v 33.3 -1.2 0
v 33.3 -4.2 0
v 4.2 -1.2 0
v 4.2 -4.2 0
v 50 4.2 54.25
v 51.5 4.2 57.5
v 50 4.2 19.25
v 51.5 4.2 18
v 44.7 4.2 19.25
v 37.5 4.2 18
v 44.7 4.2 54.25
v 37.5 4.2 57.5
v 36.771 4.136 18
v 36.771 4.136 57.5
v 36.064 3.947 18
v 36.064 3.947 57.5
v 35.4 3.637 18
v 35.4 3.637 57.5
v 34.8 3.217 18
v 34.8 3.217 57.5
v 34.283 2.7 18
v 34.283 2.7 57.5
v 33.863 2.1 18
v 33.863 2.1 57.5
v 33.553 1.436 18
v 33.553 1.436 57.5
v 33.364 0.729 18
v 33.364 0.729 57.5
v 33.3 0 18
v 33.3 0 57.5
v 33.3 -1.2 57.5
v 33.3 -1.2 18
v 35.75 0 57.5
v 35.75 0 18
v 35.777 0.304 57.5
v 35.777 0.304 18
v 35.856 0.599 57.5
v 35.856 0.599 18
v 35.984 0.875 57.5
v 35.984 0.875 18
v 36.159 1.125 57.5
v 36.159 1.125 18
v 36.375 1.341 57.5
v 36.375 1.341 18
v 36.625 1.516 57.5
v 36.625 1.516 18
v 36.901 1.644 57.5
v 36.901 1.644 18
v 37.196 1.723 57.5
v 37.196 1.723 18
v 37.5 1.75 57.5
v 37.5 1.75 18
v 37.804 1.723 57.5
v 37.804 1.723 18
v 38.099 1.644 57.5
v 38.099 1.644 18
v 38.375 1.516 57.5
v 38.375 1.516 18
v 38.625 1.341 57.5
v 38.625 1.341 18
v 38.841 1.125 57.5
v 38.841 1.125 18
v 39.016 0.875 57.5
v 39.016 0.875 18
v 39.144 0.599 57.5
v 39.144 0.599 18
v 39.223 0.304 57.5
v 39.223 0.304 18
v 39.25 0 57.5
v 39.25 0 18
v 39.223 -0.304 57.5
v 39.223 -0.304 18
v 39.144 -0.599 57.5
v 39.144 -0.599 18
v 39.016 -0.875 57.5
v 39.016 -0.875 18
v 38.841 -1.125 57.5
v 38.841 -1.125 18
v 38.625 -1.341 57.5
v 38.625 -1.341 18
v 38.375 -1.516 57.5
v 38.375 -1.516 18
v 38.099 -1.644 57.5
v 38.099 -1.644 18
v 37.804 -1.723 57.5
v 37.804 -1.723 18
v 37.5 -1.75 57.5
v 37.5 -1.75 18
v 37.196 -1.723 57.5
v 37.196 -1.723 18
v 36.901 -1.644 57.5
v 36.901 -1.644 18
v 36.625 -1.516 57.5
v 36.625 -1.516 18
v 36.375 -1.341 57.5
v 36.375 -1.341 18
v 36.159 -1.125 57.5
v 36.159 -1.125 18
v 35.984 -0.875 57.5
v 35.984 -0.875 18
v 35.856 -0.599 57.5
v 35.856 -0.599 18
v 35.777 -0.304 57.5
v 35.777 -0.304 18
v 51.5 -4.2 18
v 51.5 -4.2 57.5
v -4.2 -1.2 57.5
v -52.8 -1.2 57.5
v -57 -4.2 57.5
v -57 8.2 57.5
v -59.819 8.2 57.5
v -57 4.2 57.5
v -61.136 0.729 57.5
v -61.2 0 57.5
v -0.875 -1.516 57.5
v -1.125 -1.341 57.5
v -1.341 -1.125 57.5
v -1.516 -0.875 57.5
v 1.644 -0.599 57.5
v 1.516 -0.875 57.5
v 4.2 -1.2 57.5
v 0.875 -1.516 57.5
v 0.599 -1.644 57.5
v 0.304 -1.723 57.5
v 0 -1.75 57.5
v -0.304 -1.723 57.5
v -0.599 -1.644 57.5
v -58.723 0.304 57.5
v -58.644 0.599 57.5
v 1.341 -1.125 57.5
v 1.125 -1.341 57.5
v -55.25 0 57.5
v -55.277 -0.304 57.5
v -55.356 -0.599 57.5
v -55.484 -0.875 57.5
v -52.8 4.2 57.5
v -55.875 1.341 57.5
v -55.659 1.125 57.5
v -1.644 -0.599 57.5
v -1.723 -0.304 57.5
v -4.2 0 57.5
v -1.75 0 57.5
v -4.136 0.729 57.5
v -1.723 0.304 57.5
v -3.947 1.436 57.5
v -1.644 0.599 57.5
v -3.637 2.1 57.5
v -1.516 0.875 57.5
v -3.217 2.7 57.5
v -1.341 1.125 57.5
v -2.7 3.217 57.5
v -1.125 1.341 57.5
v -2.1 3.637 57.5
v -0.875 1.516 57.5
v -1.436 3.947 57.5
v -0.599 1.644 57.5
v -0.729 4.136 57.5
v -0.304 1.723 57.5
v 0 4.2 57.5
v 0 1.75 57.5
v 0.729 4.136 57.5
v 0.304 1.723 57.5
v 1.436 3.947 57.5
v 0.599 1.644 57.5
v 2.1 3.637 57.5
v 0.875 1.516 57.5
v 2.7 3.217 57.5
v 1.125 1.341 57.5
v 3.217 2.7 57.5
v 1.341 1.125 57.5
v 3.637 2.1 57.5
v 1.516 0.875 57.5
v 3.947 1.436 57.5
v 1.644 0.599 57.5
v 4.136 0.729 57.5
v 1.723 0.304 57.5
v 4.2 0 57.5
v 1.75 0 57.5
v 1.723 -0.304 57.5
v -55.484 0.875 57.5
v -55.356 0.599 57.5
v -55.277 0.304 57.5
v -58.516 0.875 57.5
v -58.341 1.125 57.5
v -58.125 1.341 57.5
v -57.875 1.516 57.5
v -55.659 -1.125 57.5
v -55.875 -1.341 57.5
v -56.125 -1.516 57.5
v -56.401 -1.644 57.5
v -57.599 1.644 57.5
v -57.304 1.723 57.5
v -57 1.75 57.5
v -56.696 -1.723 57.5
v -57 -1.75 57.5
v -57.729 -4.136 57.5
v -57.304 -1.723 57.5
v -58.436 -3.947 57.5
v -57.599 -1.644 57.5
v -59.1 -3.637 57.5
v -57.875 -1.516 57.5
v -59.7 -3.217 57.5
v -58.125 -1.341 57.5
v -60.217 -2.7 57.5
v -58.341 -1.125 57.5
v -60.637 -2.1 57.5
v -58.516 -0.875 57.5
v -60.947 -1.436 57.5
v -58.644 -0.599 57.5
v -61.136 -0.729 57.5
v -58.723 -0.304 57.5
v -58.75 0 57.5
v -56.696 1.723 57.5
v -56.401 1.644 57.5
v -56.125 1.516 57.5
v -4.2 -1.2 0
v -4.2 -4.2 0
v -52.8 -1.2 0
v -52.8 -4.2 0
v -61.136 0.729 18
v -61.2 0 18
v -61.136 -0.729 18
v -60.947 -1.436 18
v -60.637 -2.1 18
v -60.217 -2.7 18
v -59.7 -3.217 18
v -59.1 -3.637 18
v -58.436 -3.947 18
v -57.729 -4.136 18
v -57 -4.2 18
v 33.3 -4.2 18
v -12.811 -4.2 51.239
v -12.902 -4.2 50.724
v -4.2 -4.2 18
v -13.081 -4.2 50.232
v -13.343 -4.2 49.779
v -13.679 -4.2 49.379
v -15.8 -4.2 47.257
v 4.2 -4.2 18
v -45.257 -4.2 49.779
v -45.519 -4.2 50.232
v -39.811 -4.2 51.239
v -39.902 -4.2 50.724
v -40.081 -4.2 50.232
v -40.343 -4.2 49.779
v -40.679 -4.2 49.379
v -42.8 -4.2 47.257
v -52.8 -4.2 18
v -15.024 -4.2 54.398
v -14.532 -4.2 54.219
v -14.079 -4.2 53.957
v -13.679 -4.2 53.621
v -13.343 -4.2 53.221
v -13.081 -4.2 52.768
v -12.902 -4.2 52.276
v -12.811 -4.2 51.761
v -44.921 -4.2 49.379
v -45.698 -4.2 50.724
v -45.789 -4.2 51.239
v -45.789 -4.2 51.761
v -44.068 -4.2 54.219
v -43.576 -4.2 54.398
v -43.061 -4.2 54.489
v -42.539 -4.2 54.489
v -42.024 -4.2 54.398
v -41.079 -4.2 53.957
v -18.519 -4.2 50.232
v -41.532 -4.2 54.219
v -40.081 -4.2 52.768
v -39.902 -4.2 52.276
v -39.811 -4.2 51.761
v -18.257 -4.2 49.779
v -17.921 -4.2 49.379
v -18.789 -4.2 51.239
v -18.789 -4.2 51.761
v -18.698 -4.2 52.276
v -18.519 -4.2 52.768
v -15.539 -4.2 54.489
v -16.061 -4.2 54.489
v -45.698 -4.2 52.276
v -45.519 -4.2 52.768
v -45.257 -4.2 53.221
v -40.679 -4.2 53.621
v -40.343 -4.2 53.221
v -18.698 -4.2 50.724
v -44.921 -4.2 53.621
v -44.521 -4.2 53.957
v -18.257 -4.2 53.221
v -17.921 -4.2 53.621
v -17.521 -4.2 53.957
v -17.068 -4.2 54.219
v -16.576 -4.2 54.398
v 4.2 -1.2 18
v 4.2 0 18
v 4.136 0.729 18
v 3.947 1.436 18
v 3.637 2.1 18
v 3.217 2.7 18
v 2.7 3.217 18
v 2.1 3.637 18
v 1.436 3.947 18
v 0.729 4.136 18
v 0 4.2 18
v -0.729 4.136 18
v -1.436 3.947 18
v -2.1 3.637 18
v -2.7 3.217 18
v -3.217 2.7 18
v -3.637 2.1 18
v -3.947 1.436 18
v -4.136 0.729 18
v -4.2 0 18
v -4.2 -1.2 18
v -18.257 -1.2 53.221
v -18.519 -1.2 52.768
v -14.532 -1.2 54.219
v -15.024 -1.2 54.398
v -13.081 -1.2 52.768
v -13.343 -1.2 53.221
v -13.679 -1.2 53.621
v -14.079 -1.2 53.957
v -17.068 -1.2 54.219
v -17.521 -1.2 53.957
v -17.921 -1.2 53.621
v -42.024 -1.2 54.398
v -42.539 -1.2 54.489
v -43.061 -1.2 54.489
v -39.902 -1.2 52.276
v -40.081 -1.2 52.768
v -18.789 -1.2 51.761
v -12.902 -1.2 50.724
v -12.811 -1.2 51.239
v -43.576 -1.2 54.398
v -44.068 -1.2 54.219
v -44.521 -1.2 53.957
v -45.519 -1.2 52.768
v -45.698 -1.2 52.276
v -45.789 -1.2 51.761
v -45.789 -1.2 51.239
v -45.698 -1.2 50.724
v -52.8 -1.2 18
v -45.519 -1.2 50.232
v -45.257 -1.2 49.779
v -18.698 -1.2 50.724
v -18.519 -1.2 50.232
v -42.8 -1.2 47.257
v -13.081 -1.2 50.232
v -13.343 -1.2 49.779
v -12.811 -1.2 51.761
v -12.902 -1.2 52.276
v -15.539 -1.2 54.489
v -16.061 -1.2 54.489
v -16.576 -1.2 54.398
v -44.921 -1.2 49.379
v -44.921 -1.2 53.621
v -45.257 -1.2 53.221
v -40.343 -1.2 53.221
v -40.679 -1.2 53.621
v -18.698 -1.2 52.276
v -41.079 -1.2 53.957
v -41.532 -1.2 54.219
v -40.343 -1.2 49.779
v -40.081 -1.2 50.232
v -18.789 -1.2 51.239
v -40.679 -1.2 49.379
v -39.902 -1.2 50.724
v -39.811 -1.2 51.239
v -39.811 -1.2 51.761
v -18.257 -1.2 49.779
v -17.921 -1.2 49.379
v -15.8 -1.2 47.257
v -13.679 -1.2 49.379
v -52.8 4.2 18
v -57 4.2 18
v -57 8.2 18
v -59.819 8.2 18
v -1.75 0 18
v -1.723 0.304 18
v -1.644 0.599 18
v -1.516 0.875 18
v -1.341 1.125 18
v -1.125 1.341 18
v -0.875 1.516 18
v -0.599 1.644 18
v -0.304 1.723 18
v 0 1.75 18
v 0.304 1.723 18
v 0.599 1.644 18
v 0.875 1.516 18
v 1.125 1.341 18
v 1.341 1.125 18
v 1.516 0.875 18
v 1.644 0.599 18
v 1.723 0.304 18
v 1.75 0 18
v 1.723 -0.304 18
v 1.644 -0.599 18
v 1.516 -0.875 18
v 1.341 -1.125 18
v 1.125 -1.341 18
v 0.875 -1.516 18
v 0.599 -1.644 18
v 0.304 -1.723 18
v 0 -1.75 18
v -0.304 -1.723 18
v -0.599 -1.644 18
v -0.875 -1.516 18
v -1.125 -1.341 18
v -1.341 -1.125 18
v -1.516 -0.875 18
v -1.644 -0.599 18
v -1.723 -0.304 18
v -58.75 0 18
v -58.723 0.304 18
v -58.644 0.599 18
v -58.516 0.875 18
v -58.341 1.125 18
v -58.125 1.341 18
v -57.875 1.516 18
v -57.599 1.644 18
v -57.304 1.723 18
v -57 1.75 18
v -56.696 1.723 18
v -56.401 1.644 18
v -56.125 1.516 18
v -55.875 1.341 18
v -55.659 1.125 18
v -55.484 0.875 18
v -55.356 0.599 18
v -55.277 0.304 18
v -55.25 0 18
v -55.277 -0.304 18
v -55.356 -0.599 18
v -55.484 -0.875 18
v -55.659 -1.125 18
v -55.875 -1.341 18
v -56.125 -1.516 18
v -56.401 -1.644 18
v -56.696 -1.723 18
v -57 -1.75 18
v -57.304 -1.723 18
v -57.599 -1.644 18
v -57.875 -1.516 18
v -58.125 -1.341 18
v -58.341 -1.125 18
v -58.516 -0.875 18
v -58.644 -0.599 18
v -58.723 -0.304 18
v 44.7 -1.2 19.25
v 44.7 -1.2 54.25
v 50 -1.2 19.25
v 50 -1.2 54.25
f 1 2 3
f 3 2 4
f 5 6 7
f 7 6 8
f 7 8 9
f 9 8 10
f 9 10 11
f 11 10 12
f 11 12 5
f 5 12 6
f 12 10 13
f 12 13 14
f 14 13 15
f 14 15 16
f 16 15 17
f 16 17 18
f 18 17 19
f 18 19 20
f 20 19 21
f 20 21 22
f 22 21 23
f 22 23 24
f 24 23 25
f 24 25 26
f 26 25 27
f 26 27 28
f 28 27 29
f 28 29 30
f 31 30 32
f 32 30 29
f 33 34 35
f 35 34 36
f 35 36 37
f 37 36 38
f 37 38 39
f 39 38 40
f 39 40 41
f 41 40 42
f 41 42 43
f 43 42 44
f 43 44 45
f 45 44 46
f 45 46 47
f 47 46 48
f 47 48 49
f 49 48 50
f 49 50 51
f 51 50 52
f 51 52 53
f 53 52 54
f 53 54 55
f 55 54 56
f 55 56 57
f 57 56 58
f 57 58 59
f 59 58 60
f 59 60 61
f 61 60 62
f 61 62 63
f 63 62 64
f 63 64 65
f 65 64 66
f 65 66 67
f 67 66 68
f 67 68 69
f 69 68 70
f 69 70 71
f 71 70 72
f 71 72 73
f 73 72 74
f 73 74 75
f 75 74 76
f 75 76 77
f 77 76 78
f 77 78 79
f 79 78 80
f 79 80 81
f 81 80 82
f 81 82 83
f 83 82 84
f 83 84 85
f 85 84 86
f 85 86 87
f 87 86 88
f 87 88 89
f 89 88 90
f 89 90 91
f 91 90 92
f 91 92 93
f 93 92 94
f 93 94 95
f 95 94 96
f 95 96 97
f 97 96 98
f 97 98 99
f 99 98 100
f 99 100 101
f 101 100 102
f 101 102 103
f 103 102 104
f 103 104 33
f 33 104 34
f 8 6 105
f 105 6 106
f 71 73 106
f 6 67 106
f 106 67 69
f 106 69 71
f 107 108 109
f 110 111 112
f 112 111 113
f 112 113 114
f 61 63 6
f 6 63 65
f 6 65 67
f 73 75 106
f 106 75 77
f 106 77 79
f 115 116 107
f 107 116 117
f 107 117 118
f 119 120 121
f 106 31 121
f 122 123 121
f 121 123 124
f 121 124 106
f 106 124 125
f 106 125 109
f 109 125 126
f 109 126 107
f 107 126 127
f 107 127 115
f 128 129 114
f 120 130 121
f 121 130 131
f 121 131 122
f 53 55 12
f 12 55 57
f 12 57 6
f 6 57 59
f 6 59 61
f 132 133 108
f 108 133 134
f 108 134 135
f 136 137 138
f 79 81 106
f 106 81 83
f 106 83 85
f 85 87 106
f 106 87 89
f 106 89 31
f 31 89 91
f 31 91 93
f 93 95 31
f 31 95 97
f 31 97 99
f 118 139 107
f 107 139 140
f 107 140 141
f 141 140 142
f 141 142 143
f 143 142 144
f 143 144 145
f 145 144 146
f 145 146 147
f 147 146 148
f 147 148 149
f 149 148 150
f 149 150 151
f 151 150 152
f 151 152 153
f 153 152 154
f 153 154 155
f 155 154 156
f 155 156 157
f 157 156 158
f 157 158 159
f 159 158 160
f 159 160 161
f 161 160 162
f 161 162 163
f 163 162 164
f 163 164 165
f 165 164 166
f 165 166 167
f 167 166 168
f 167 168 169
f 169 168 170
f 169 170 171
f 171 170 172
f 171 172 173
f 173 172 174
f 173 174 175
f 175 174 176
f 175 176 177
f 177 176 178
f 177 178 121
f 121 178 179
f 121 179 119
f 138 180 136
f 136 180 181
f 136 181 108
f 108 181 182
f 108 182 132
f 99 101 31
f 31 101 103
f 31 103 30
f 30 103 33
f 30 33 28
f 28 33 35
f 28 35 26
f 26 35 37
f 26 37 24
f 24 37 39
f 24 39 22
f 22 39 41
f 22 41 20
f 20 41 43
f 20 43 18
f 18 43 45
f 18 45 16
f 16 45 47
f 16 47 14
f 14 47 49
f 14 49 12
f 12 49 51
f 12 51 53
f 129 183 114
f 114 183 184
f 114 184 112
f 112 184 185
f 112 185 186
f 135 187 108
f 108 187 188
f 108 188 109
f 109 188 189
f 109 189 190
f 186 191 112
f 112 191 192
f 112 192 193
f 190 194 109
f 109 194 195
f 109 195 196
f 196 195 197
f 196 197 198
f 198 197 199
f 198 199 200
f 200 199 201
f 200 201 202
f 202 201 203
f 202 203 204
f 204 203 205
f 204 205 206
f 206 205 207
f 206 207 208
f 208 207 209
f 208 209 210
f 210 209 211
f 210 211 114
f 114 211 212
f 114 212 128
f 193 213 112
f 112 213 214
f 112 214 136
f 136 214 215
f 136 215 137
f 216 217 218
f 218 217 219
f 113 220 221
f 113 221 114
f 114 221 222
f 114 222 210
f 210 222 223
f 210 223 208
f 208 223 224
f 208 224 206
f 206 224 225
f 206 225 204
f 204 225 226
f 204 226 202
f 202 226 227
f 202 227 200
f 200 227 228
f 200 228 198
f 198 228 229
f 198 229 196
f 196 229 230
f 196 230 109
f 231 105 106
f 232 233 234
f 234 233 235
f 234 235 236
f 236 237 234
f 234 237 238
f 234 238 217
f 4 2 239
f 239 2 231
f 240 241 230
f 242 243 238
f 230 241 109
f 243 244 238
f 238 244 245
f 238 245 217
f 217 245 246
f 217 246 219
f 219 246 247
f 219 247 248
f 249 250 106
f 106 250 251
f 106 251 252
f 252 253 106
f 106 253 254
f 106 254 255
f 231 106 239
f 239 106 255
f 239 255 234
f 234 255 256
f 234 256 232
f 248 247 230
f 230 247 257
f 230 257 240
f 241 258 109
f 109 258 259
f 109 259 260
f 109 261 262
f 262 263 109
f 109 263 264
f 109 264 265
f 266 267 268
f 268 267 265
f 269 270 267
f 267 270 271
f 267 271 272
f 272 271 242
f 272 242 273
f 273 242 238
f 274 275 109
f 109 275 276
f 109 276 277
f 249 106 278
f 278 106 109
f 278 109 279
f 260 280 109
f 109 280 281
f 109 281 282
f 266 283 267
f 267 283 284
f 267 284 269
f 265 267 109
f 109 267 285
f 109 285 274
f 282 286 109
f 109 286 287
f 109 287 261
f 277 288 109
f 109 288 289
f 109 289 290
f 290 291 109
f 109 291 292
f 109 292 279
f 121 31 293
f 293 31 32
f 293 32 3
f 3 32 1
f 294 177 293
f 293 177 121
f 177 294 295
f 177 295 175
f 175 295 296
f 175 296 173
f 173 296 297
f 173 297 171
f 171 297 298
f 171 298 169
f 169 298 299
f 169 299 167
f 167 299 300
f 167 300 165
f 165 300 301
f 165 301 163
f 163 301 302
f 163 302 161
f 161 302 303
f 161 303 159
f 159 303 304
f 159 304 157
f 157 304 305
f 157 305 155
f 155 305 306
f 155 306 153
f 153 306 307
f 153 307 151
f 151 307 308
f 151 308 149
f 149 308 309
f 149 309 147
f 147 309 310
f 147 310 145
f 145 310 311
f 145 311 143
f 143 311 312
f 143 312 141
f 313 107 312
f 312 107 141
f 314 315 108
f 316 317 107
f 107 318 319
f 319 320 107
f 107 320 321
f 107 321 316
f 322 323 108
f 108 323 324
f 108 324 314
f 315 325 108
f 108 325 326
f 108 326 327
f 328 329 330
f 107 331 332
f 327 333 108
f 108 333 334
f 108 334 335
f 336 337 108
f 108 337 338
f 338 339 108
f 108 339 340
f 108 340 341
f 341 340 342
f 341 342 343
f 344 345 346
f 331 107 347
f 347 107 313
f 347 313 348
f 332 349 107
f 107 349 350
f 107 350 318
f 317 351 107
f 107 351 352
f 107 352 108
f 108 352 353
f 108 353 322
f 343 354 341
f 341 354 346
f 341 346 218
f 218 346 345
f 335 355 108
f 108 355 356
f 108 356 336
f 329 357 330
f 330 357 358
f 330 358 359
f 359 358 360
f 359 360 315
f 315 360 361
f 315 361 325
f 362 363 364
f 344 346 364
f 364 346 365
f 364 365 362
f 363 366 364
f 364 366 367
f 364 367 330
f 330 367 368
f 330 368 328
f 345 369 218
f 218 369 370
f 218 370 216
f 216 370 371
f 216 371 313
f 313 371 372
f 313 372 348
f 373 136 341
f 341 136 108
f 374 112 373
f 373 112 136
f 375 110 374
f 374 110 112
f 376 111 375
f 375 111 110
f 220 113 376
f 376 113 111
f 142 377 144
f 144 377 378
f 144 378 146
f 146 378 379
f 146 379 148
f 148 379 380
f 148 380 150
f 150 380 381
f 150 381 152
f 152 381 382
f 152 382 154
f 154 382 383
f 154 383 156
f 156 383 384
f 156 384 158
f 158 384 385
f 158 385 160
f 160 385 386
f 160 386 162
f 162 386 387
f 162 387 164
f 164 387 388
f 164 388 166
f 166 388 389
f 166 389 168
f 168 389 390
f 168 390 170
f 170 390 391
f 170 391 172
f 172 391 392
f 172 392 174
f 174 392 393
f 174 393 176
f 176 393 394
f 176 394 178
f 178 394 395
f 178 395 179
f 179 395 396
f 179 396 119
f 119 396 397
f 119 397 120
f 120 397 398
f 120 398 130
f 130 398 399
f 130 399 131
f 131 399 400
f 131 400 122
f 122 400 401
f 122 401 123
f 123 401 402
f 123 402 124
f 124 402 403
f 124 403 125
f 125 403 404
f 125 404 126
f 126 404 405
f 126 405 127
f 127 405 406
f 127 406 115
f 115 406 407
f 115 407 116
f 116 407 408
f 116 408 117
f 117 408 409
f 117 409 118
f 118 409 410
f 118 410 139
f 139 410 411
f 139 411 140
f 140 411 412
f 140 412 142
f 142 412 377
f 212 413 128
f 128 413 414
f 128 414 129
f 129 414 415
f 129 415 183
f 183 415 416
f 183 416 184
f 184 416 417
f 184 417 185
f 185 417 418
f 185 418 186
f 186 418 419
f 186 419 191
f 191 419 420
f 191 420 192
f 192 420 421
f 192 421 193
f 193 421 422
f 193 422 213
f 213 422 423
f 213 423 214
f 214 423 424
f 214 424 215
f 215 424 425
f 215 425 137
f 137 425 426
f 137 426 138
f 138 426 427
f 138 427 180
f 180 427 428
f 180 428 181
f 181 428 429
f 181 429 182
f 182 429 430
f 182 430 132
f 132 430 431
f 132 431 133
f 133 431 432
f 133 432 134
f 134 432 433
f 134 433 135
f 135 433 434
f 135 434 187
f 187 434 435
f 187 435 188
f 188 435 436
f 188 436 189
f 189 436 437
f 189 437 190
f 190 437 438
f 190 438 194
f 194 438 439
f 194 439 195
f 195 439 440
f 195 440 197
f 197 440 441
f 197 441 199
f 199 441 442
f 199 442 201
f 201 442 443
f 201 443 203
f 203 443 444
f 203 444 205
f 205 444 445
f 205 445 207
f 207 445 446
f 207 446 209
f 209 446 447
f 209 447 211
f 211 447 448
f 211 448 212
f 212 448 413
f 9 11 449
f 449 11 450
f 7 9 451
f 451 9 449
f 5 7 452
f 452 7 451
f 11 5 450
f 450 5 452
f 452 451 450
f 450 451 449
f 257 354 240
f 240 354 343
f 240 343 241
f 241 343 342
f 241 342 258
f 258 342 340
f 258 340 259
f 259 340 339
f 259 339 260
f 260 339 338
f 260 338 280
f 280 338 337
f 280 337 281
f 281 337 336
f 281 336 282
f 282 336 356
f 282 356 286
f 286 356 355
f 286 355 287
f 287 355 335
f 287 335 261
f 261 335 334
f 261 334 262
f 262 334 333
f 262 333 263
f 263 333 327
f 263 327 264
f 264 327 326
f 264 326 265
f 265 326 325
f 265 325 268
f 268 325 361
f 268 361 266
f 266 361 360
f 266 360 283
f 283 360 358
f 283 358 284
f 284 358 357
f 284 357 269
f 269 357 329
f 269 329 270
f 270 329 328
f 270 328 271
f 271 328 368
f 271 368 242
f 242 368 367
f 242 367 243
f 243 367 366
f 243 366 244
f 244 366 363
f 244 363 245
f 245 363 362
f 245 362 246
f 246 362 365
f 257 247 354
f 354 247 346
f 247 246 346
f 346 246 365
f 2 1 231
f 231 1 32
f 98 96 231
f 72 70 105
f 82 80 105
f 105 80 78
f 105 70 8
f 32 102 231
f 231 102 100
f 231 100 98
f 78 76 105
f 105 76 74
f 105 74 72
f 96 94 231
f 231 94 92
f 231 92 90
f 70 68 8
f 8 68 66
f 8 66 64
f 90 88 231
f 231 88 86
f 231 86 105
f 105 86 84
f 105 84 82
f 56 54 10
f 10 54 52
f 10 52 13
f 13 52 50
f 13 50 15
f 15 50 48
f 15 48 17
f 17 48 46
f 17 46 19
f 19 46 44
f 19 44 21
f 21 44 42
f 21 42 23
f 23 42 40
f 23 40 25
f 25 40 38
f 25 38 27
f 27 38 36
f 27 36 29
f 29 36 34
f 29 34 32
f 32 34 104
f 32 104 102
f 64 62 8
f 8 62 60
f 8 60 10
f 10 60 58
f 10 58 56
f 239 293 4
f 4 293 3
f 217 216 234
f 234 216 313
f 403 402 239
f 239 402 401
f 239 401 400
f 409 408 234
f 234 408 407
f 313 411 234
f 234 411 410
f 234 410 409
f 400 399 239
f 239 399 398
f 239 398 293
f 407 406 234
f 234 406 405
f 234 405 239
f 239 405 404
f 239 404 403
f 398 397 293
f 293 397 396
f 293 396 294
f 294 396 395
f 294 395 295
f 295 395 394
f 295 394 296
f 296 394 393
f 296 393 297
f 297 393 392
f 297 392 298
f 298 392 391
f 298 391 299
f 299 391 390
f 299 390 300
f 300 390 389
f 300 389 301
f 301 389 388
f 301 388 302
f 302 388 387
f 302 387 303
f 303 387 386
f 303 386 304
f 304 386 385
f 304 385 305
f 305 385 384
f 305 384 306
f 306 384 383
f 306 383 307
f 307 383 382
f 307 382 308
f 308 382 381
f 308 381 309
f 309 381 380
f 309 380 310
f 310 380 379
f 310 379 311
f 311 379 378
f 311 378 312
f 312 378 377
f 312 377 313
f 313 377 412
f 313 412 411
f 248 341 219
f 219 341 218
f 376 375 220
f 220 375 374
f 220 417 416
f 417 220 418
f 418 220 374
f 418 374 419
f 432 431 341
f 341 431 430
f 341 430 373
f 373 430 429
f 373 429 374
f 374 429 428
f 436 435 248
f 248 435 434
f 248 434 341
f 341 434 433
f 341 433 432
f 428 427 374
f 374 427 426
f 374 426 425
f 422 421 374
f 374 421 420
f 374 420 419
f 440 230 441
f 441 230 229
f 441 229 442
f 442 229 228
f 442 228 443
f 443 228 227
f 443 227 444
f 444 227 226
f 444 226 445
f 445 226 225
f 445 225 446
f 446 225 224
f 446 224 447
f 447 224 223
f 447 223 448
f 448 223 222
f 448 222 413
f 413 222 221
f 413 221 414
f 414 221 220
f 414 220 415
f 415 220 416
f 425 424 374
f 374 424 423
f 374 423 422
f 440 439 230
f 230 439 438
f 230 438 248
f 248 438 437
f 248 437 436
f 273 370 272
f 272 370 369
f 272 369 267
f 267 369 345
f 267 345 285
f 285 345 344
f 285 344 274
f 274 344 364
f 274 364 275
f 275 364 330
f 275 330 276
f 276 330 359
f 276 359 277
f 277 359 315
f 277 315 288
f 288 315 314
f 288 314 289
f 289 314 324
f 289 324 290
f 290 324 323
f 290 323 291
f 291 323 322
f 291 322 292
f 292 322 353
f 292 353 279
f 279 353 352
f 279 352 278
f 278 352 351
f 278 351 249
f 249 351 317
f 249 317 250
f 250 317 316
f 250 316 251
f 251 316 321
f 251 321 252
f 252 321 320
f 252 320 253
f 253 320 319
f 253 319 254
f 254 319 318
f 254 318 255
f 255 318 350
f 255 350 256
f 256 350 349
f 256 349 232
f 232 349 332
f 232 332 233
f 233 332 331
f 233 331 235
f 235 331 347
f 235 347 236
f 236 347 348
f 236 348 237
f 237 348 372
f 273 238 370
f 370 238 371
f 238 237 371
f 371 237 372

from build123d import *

# Parameters (mm, degrees)
SKETCH1_R           = 1.75
BOSS_EXTRUDE1_DEPTH = 57.5
BOSS_EXTRUDE2_DEPTH = 8.4
SKETCH3_W           = 5.3
SKETCH3_H           = 35
CUT_EXTRUDE1_DEPTH  = 5.4
CUT_EXTRUDE2_DEPTH  = 85.49881656
SKETCH5_W           = 18.2
SKETCH5_H           = 8.4
SKETCH5_W_2         = 8.4
SKETCH5_H_2         = 8.937392322
SKETCH5_W_3         = 9.875614017
SKETCH5_H_3         = 12.4
CUT_EXTRUDE3_DEPTH  = 18
LPATTERN1_COUNT     = 2
LPATTERN1_PITCH     = 27


with BuildPart() as part:
    # Sketch1 → Boss-Extrude1 (new body)
    with BuildSketch(Plane.XY):
        with BuildLine():
            Line((-52.8, -1.2), (-4.2, -1.2))
            Line((-4.2, -1.2), (-4.2, 0))
            ThreePointArc((-4.2, 0), (0, 4.2), (4.2, 0))
            Line((4.2, 0), (4.2, -1.2))
            Line((4.2, -1.2), (33.3, -1.2))
            Line((33.3, -1.2), (33.3, 0))
            ThreePointArc((33.3, 0), (34.530151519, 2.969848481), (37.5, 4.2))
            Line((37.5, 4.2), (41.5, 4.2))
            Line((41.5, 4.2), (41.5, -4.2))
            Line((41.5, -4.2), (-57, -4.2))
            ThreePointArc((-57, -4.2), (-60.217386661, -2.699707961), (-61.136192563, 0.729322346))
            Line((-61.136192563, 0.729322346), (-59.818910528, 8.2))
            Line((-59.818910528, 8.2), (-57, 8.2))
            Line((-57, 8.2), (-57, 4.2))
            Line((-57, 4.2), (-52.8, 4.2))
            Line((-52.8, 4.2), (-52.8, -1.2))
        make_face()
        Circle(SKETCH1_R, mode=Mode.SUBTRACT)
        with Locations((-57, 0)):
            Circle(SKETCH1_R, mode=Mode.SUBTRACT)
        with Locations((37.5, 0)):
            Circle(SKETCH1_R, mode=Mode.SUBTRACT)
    extrude(amount=BOSS_EXTRUDE1_DEPTH)

    # Sketch2 → Boss-Extrude2 (add)
    with BuildSketch(Plane(origin=(0, 4.2, 0), x_dir=(1, 0, 0), z_dir=(0, 1, 0))):
        Polygon((41.5, -57.5), (51.5, -57.5), (51.5, -17.5), (41.5, 0), align=None)
    extrude(amount=-BOSS_EXTRUDE2_DEPTH)

    # Sketch3 → Cut-Extrude1 (cut)
    with BuildSketch(Plane(origin=(0, 4.2, 0), x_dir=(1, 0, 0), z_dir=(0, 1, 0))):
        with Locations((47.35, -36.75)):
            Rectangle(SKETCH3_W, SKETCH3_H)
    extrude(amount=-CUT_EXTRUDE1_DEPTH, mode=Mode.SUBTRACT)

    # Sketch4 → Cut-Extrude2 (cut, through all)
    with BuildSketch(Plane(origin=(0, -1.2, 0), x_dir=(1, 0, 0), z_dir=(0, 1, 0))):
        with BuildLine():
            Line((-44.921320344, -49.378679656), (-42.8, -47.257359313))
            Line((-42.8, -47.257359313), (-40.678679656, -49.378679656))
            ThreePointArc((-40.678679656, -49.378679656), (-42.8, -54.5), (-44.921320344, -49.378679656))
        make_face()
    cut_extrude2 = extrude(amount=-CUT_EXTRUDE2_DEPTH, mode=Mode.SUBTRACT)

    # Sketch5 → Cut-Extrude3 (cut)
    with BuildSketch(Plane(origin=(0, 0, 0), x_dir=(-1, 0, 0), z_dir=(0, 0, -1))):
        with Locations((-42.4, 0)):
            Rectangle(SKETCH5_W, SKETCH5_H)
        with Locations((0, 0.268696161)):
            Rectangle(SKETCH5_W_2, SKETCH5_H_2)
        with Locations((57.737807008, 2)):
            Rectangle(SKETCH5_W_3, SKETCH5_H_3)
    extrude(amount=-CUT_EXTRUDE3_DEPTH, mode=Mode.SUBTRACT)

    # LPattern1: Cut-Extrude2 ×2
    with Locations(*[(i * LPATTERN1_PITCH, 0, 0) for i in range(1, LPATTERN1_COUNT)]):
        add(cut_extrude2, mode=Mode.SUBTRACT)


solid = part.part
